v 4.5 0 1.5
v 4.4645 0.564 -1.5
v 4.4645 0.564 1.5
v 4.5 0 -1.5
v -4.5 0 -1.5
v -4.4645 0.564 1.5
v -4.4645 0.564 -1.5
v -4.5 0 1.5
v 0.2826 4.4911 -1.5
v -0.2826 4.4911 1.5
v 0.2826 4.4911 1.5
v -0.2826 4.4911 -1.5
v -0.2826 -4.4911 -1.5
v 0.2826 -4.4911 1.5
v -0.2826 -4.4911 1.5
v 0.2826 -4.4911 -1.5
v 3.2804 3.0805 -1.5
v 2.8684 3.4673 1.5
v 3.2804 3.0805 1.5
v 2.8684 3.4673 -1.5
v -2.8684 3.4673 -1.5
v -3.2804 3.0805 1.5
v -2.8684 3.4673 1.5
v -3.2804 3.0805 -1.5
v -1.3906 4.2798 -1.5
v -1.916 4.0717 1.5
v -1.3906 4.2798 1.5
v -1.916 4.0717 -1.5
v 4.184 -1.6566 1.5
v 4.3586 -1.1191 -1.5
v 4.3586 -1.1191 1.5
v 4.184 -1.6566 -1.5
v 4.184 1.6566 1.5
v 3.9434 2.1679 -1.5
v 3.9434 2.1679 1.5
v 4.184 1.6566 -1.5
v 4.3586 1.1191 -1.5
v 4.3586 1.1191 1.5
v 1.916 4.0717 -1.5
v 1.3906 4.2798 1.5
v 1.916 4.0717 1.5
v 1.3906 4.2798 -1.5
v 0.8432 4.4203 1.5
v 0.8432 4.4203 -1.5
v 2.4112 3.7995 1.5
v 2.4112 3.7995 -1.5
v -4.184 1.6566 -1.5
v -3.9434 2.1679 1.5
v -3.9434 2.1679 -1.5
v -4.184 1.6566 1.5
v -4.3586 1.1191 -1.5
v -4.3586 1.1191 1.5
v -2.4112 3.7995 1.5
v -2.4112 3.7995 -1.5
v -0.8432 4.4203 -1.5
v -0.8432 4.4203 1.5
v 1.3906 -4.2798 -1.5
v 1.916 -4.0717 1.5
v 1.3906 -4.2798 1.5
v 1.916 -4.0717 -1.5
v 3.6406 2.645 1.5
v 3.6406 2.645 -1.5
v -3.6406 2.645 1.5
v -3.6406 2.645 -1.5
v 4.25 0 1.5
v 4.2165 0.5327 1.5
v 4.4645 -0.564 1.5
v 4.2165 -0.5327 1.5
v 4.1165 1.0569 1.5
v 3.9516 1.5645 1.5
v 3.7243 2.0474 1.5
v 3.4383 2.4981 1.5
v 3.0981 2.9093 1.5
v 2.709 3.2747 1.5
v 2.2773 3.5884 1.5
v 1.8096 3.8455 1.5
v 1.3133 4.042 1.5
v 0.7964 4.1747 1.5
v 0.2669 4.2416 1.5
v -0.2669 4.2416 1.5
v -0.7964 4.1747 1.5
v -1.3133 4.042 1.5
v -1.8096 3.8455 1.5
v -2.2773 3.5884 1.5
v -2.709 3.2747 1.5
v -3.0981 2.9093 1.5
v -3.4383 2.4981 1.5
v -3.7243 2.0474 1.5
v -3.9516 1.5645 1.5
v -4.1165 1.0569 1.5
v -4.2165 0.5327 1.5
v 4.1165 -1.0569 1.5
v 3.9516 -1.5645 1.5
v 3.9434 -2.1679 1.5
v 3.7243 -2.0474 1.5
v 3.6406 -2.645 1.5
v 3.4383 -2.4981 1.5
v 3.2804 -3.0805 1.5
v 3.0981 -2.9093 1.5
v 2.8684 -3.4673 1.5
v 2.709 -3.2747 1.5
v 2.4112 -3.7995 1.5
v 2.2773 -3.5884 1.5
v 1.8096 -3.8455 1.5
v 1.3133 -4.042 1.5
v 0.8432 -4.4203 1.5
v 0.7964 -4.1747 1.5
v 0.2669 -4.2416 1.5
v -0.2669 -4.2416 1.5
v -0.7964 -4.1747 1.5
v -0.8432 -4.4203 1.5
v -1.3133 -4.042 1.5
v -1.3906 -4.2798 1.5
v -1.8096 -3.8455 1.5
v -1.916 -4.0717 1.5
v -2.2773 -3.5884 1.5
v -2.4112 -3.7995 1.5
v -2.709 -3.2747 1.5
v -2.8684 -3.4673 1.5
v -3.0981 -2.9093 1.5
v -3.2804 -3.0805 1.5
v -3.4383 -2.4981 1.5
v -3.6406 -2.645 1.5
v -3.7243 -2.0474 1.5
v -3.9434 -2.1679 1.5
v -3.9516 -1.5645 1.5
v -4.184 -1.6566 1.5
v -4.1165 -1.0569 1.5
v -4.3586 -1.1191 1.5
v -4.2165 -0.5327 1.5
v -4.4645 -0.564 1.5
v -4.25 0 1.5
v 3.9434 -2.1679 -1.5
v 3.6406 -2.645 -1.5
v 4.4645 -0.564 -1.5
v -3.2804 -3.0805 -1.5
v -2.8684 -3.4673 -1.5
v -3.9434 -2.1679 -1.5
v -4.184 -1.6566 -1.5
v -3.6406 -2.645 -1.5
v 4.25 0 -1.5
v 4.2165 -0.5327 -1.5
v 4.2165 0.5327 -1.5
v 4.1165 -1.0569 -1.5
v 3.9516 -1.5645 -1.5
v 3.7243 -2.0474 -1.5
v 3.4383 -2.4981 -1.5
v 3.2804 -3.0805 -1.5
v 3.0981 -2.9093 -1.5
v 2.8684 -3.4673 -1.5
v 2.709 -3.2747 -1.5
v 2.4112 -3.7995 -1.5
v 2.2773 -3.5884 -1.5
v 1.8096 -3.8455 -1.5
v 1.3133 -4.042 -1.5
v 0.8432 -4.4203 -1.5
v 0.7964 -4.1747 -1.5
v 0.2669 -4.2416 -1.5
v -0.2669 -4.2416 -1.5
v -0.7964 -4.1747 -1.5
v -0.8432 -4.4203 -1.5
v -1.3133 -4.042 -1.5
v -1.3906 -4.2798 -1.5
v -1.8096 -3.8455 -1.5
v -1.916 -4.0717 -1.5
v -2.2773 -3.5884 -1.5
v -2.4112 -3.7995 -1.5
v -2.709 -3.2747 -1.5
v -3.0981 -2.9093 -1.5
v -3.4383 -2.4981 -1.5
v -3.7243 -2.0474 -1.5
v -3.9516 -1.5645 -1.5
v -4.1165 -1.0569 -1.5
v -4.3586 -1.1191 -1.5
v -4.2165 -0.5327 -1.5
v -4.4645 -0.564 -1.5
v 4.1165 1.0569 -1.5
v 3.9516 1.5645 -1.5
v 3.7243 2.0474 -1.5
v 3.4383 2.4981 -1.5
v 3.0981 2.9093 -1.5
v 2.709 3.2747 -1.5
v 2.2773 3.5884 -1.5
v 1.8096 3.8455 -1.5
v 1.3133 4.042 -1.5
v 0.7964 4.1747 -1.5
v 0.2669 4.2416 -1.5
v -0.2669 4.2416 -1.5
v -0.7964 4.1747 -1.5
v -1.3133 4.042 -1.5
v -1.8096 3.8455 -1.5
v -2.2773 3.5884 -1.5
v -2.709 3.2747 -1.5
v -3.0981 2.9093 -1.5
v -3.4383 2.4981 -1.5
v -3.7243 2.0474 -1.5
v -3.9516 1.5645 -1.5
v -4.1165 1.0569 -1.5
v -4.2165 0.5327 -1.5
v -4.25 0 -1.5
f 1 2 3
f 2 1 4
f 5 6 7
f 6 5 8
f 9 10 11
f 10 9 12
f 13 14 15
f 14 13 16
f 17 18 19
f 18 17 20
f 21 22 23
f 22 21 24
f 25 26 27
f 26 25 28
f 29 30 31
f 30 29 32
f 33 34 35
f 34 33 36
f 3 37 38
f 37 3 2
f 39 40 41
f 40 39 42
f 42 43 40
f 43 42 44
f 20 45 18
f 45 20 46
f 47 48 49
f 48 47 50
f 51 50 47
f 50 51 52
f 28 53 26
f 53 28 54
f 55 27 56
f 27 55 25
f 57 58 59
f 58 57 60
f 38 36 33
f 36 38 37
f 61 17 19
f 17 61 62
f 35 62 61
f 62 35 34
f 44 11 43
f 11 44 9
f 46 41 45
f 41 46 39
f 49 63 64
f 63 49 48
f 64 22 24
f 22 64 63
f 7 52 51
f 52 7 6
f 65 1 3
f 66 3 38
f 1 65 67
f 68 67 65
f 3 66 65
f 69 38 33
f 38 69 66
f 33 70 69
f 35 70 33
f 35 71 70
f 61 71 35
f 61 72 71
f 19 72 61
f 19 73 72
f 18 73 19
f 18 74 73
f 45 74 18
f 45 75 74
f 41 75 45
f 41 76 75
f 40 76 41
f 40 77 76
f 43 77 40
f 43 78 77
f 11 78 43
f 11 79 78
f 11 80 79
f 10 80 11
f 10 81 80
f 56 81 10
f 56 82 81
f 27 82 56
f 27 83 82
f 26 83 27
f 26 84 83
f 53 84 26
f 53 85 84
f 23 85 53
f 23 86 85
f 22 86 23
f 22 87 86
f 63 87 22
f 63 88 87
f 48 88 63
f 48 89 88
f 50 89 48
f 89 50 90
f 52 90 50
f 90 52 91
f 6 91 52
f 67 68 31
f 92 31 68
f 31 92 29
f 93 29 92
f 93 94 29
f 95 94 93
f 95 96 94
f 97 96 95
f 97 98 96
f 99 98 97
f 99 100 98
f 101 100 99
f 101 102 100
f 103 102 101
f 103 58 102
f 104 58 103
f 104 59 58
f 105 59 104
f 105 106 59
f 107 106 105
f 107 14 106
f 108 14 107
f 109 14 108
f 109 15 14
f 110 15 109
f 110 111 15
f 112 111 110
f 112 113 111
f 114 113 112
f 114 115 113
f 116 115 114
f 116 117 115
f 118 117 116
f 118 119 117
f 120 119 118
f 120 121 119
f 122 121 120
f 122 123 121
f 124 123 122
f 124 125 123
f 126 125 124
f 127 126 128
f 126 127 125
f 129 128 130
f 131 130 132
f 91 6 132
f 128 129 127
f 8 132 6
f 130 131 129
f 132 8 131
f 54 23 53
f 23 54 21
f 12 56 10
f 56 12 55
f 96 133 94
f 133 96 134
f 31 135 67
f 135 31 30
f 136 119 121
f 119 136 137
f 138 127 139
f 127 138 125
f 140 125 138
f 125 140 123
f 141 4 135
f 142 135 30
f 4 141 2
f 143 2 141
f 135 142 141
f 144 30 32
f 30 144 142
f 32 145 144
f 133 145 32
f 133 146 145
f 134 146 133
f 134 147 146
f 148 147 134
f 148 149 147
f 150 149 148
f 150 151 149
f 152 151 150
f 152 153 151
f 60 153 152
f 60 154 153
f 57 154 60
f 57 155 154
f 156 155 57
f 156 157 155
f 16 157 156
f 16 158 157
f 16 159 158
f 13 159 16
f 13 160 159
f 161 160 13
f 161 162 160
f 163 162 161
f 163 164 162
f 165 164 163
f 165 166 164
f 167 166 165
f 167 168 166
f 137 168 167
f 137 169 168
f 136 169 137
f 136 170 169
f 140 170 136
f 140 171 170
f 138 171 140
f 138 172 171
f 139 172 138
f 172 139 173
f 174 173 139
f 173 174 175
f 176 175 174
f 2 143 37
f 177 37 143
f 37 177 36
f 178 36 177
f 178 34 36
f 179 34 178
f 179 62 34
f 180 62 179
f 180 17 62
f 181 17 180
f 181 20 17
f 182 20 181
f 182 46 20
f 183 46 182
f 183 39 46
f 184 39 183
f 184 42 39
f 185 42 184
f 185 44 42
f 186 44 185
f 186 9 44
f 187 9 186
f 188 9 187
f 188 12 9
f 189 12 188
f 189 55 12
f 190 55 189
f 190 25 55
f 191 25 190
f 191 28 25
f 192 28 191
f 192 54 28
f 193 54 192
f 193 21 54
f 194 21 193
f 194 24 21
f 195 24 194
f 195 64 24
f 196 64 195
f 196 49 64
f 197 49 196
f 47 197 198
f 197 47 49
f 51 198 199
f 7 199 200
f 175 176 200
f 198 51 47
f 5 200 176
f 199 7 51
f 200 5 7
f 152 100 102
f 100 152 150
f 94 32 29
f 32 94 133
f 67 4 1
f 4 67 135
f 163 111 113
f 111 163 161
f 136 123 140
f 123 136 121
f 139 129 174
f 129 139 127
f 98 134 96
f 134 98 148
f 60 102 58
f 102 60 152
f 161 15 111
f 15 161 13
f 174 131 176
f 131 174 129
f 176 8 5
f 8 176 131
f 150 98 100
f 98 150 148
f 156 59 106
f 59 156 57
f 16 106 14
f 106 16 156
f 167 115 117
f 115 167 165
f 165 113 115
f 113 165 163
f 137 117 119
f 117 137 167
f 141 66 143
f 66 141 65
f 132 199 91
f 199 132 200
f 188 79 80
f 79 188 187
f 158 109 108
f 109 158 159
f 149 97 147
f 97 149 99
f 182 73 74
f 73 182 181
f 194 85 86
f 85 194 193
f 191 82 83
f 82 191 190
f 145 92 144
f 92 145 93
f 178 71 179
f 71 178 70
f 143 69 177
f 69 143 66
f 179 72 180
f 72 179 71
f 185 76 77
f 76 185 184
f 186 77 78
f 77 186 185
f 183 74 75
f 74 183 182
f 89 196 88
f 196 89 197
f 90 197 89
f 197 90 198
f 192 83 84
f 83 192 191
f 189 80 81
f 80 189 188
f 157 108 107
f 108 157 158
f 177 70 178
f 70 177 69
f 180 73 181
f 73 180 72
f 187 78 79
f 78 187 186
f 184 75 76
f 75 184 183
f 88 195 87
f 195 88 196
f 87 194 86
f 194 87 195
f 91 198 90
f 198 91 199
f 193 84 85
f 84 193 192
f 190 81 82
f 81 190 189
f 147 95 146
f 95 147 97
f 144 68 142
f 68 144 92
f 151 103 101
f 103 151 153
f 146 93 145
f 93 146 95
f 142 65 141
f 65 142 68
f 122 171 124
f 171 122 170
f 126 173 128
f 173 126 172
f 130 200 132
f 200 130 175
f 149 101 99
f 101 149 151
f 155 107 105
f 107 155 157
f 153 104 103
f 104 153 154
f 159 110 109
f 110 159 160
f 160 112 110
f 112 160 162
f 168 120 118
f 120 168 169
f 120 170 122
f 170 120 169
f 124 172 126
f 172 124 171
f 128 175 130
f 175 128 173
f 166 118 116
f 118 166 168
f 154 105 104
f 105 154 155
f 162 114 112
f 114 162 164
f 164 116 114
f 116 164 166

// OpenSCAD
$fn = 50;


difference() {
	union() {
		translate(v = [0, 0, -1.5000000000]) {
			cylinder(h = 3, r = 4.5000000000);
		}
	}
	union() {
		translate(v = [0, 0, -100.0000000000]) {
			cylinder(h = 200, r = 4.2500000000);
		}
	}
}
